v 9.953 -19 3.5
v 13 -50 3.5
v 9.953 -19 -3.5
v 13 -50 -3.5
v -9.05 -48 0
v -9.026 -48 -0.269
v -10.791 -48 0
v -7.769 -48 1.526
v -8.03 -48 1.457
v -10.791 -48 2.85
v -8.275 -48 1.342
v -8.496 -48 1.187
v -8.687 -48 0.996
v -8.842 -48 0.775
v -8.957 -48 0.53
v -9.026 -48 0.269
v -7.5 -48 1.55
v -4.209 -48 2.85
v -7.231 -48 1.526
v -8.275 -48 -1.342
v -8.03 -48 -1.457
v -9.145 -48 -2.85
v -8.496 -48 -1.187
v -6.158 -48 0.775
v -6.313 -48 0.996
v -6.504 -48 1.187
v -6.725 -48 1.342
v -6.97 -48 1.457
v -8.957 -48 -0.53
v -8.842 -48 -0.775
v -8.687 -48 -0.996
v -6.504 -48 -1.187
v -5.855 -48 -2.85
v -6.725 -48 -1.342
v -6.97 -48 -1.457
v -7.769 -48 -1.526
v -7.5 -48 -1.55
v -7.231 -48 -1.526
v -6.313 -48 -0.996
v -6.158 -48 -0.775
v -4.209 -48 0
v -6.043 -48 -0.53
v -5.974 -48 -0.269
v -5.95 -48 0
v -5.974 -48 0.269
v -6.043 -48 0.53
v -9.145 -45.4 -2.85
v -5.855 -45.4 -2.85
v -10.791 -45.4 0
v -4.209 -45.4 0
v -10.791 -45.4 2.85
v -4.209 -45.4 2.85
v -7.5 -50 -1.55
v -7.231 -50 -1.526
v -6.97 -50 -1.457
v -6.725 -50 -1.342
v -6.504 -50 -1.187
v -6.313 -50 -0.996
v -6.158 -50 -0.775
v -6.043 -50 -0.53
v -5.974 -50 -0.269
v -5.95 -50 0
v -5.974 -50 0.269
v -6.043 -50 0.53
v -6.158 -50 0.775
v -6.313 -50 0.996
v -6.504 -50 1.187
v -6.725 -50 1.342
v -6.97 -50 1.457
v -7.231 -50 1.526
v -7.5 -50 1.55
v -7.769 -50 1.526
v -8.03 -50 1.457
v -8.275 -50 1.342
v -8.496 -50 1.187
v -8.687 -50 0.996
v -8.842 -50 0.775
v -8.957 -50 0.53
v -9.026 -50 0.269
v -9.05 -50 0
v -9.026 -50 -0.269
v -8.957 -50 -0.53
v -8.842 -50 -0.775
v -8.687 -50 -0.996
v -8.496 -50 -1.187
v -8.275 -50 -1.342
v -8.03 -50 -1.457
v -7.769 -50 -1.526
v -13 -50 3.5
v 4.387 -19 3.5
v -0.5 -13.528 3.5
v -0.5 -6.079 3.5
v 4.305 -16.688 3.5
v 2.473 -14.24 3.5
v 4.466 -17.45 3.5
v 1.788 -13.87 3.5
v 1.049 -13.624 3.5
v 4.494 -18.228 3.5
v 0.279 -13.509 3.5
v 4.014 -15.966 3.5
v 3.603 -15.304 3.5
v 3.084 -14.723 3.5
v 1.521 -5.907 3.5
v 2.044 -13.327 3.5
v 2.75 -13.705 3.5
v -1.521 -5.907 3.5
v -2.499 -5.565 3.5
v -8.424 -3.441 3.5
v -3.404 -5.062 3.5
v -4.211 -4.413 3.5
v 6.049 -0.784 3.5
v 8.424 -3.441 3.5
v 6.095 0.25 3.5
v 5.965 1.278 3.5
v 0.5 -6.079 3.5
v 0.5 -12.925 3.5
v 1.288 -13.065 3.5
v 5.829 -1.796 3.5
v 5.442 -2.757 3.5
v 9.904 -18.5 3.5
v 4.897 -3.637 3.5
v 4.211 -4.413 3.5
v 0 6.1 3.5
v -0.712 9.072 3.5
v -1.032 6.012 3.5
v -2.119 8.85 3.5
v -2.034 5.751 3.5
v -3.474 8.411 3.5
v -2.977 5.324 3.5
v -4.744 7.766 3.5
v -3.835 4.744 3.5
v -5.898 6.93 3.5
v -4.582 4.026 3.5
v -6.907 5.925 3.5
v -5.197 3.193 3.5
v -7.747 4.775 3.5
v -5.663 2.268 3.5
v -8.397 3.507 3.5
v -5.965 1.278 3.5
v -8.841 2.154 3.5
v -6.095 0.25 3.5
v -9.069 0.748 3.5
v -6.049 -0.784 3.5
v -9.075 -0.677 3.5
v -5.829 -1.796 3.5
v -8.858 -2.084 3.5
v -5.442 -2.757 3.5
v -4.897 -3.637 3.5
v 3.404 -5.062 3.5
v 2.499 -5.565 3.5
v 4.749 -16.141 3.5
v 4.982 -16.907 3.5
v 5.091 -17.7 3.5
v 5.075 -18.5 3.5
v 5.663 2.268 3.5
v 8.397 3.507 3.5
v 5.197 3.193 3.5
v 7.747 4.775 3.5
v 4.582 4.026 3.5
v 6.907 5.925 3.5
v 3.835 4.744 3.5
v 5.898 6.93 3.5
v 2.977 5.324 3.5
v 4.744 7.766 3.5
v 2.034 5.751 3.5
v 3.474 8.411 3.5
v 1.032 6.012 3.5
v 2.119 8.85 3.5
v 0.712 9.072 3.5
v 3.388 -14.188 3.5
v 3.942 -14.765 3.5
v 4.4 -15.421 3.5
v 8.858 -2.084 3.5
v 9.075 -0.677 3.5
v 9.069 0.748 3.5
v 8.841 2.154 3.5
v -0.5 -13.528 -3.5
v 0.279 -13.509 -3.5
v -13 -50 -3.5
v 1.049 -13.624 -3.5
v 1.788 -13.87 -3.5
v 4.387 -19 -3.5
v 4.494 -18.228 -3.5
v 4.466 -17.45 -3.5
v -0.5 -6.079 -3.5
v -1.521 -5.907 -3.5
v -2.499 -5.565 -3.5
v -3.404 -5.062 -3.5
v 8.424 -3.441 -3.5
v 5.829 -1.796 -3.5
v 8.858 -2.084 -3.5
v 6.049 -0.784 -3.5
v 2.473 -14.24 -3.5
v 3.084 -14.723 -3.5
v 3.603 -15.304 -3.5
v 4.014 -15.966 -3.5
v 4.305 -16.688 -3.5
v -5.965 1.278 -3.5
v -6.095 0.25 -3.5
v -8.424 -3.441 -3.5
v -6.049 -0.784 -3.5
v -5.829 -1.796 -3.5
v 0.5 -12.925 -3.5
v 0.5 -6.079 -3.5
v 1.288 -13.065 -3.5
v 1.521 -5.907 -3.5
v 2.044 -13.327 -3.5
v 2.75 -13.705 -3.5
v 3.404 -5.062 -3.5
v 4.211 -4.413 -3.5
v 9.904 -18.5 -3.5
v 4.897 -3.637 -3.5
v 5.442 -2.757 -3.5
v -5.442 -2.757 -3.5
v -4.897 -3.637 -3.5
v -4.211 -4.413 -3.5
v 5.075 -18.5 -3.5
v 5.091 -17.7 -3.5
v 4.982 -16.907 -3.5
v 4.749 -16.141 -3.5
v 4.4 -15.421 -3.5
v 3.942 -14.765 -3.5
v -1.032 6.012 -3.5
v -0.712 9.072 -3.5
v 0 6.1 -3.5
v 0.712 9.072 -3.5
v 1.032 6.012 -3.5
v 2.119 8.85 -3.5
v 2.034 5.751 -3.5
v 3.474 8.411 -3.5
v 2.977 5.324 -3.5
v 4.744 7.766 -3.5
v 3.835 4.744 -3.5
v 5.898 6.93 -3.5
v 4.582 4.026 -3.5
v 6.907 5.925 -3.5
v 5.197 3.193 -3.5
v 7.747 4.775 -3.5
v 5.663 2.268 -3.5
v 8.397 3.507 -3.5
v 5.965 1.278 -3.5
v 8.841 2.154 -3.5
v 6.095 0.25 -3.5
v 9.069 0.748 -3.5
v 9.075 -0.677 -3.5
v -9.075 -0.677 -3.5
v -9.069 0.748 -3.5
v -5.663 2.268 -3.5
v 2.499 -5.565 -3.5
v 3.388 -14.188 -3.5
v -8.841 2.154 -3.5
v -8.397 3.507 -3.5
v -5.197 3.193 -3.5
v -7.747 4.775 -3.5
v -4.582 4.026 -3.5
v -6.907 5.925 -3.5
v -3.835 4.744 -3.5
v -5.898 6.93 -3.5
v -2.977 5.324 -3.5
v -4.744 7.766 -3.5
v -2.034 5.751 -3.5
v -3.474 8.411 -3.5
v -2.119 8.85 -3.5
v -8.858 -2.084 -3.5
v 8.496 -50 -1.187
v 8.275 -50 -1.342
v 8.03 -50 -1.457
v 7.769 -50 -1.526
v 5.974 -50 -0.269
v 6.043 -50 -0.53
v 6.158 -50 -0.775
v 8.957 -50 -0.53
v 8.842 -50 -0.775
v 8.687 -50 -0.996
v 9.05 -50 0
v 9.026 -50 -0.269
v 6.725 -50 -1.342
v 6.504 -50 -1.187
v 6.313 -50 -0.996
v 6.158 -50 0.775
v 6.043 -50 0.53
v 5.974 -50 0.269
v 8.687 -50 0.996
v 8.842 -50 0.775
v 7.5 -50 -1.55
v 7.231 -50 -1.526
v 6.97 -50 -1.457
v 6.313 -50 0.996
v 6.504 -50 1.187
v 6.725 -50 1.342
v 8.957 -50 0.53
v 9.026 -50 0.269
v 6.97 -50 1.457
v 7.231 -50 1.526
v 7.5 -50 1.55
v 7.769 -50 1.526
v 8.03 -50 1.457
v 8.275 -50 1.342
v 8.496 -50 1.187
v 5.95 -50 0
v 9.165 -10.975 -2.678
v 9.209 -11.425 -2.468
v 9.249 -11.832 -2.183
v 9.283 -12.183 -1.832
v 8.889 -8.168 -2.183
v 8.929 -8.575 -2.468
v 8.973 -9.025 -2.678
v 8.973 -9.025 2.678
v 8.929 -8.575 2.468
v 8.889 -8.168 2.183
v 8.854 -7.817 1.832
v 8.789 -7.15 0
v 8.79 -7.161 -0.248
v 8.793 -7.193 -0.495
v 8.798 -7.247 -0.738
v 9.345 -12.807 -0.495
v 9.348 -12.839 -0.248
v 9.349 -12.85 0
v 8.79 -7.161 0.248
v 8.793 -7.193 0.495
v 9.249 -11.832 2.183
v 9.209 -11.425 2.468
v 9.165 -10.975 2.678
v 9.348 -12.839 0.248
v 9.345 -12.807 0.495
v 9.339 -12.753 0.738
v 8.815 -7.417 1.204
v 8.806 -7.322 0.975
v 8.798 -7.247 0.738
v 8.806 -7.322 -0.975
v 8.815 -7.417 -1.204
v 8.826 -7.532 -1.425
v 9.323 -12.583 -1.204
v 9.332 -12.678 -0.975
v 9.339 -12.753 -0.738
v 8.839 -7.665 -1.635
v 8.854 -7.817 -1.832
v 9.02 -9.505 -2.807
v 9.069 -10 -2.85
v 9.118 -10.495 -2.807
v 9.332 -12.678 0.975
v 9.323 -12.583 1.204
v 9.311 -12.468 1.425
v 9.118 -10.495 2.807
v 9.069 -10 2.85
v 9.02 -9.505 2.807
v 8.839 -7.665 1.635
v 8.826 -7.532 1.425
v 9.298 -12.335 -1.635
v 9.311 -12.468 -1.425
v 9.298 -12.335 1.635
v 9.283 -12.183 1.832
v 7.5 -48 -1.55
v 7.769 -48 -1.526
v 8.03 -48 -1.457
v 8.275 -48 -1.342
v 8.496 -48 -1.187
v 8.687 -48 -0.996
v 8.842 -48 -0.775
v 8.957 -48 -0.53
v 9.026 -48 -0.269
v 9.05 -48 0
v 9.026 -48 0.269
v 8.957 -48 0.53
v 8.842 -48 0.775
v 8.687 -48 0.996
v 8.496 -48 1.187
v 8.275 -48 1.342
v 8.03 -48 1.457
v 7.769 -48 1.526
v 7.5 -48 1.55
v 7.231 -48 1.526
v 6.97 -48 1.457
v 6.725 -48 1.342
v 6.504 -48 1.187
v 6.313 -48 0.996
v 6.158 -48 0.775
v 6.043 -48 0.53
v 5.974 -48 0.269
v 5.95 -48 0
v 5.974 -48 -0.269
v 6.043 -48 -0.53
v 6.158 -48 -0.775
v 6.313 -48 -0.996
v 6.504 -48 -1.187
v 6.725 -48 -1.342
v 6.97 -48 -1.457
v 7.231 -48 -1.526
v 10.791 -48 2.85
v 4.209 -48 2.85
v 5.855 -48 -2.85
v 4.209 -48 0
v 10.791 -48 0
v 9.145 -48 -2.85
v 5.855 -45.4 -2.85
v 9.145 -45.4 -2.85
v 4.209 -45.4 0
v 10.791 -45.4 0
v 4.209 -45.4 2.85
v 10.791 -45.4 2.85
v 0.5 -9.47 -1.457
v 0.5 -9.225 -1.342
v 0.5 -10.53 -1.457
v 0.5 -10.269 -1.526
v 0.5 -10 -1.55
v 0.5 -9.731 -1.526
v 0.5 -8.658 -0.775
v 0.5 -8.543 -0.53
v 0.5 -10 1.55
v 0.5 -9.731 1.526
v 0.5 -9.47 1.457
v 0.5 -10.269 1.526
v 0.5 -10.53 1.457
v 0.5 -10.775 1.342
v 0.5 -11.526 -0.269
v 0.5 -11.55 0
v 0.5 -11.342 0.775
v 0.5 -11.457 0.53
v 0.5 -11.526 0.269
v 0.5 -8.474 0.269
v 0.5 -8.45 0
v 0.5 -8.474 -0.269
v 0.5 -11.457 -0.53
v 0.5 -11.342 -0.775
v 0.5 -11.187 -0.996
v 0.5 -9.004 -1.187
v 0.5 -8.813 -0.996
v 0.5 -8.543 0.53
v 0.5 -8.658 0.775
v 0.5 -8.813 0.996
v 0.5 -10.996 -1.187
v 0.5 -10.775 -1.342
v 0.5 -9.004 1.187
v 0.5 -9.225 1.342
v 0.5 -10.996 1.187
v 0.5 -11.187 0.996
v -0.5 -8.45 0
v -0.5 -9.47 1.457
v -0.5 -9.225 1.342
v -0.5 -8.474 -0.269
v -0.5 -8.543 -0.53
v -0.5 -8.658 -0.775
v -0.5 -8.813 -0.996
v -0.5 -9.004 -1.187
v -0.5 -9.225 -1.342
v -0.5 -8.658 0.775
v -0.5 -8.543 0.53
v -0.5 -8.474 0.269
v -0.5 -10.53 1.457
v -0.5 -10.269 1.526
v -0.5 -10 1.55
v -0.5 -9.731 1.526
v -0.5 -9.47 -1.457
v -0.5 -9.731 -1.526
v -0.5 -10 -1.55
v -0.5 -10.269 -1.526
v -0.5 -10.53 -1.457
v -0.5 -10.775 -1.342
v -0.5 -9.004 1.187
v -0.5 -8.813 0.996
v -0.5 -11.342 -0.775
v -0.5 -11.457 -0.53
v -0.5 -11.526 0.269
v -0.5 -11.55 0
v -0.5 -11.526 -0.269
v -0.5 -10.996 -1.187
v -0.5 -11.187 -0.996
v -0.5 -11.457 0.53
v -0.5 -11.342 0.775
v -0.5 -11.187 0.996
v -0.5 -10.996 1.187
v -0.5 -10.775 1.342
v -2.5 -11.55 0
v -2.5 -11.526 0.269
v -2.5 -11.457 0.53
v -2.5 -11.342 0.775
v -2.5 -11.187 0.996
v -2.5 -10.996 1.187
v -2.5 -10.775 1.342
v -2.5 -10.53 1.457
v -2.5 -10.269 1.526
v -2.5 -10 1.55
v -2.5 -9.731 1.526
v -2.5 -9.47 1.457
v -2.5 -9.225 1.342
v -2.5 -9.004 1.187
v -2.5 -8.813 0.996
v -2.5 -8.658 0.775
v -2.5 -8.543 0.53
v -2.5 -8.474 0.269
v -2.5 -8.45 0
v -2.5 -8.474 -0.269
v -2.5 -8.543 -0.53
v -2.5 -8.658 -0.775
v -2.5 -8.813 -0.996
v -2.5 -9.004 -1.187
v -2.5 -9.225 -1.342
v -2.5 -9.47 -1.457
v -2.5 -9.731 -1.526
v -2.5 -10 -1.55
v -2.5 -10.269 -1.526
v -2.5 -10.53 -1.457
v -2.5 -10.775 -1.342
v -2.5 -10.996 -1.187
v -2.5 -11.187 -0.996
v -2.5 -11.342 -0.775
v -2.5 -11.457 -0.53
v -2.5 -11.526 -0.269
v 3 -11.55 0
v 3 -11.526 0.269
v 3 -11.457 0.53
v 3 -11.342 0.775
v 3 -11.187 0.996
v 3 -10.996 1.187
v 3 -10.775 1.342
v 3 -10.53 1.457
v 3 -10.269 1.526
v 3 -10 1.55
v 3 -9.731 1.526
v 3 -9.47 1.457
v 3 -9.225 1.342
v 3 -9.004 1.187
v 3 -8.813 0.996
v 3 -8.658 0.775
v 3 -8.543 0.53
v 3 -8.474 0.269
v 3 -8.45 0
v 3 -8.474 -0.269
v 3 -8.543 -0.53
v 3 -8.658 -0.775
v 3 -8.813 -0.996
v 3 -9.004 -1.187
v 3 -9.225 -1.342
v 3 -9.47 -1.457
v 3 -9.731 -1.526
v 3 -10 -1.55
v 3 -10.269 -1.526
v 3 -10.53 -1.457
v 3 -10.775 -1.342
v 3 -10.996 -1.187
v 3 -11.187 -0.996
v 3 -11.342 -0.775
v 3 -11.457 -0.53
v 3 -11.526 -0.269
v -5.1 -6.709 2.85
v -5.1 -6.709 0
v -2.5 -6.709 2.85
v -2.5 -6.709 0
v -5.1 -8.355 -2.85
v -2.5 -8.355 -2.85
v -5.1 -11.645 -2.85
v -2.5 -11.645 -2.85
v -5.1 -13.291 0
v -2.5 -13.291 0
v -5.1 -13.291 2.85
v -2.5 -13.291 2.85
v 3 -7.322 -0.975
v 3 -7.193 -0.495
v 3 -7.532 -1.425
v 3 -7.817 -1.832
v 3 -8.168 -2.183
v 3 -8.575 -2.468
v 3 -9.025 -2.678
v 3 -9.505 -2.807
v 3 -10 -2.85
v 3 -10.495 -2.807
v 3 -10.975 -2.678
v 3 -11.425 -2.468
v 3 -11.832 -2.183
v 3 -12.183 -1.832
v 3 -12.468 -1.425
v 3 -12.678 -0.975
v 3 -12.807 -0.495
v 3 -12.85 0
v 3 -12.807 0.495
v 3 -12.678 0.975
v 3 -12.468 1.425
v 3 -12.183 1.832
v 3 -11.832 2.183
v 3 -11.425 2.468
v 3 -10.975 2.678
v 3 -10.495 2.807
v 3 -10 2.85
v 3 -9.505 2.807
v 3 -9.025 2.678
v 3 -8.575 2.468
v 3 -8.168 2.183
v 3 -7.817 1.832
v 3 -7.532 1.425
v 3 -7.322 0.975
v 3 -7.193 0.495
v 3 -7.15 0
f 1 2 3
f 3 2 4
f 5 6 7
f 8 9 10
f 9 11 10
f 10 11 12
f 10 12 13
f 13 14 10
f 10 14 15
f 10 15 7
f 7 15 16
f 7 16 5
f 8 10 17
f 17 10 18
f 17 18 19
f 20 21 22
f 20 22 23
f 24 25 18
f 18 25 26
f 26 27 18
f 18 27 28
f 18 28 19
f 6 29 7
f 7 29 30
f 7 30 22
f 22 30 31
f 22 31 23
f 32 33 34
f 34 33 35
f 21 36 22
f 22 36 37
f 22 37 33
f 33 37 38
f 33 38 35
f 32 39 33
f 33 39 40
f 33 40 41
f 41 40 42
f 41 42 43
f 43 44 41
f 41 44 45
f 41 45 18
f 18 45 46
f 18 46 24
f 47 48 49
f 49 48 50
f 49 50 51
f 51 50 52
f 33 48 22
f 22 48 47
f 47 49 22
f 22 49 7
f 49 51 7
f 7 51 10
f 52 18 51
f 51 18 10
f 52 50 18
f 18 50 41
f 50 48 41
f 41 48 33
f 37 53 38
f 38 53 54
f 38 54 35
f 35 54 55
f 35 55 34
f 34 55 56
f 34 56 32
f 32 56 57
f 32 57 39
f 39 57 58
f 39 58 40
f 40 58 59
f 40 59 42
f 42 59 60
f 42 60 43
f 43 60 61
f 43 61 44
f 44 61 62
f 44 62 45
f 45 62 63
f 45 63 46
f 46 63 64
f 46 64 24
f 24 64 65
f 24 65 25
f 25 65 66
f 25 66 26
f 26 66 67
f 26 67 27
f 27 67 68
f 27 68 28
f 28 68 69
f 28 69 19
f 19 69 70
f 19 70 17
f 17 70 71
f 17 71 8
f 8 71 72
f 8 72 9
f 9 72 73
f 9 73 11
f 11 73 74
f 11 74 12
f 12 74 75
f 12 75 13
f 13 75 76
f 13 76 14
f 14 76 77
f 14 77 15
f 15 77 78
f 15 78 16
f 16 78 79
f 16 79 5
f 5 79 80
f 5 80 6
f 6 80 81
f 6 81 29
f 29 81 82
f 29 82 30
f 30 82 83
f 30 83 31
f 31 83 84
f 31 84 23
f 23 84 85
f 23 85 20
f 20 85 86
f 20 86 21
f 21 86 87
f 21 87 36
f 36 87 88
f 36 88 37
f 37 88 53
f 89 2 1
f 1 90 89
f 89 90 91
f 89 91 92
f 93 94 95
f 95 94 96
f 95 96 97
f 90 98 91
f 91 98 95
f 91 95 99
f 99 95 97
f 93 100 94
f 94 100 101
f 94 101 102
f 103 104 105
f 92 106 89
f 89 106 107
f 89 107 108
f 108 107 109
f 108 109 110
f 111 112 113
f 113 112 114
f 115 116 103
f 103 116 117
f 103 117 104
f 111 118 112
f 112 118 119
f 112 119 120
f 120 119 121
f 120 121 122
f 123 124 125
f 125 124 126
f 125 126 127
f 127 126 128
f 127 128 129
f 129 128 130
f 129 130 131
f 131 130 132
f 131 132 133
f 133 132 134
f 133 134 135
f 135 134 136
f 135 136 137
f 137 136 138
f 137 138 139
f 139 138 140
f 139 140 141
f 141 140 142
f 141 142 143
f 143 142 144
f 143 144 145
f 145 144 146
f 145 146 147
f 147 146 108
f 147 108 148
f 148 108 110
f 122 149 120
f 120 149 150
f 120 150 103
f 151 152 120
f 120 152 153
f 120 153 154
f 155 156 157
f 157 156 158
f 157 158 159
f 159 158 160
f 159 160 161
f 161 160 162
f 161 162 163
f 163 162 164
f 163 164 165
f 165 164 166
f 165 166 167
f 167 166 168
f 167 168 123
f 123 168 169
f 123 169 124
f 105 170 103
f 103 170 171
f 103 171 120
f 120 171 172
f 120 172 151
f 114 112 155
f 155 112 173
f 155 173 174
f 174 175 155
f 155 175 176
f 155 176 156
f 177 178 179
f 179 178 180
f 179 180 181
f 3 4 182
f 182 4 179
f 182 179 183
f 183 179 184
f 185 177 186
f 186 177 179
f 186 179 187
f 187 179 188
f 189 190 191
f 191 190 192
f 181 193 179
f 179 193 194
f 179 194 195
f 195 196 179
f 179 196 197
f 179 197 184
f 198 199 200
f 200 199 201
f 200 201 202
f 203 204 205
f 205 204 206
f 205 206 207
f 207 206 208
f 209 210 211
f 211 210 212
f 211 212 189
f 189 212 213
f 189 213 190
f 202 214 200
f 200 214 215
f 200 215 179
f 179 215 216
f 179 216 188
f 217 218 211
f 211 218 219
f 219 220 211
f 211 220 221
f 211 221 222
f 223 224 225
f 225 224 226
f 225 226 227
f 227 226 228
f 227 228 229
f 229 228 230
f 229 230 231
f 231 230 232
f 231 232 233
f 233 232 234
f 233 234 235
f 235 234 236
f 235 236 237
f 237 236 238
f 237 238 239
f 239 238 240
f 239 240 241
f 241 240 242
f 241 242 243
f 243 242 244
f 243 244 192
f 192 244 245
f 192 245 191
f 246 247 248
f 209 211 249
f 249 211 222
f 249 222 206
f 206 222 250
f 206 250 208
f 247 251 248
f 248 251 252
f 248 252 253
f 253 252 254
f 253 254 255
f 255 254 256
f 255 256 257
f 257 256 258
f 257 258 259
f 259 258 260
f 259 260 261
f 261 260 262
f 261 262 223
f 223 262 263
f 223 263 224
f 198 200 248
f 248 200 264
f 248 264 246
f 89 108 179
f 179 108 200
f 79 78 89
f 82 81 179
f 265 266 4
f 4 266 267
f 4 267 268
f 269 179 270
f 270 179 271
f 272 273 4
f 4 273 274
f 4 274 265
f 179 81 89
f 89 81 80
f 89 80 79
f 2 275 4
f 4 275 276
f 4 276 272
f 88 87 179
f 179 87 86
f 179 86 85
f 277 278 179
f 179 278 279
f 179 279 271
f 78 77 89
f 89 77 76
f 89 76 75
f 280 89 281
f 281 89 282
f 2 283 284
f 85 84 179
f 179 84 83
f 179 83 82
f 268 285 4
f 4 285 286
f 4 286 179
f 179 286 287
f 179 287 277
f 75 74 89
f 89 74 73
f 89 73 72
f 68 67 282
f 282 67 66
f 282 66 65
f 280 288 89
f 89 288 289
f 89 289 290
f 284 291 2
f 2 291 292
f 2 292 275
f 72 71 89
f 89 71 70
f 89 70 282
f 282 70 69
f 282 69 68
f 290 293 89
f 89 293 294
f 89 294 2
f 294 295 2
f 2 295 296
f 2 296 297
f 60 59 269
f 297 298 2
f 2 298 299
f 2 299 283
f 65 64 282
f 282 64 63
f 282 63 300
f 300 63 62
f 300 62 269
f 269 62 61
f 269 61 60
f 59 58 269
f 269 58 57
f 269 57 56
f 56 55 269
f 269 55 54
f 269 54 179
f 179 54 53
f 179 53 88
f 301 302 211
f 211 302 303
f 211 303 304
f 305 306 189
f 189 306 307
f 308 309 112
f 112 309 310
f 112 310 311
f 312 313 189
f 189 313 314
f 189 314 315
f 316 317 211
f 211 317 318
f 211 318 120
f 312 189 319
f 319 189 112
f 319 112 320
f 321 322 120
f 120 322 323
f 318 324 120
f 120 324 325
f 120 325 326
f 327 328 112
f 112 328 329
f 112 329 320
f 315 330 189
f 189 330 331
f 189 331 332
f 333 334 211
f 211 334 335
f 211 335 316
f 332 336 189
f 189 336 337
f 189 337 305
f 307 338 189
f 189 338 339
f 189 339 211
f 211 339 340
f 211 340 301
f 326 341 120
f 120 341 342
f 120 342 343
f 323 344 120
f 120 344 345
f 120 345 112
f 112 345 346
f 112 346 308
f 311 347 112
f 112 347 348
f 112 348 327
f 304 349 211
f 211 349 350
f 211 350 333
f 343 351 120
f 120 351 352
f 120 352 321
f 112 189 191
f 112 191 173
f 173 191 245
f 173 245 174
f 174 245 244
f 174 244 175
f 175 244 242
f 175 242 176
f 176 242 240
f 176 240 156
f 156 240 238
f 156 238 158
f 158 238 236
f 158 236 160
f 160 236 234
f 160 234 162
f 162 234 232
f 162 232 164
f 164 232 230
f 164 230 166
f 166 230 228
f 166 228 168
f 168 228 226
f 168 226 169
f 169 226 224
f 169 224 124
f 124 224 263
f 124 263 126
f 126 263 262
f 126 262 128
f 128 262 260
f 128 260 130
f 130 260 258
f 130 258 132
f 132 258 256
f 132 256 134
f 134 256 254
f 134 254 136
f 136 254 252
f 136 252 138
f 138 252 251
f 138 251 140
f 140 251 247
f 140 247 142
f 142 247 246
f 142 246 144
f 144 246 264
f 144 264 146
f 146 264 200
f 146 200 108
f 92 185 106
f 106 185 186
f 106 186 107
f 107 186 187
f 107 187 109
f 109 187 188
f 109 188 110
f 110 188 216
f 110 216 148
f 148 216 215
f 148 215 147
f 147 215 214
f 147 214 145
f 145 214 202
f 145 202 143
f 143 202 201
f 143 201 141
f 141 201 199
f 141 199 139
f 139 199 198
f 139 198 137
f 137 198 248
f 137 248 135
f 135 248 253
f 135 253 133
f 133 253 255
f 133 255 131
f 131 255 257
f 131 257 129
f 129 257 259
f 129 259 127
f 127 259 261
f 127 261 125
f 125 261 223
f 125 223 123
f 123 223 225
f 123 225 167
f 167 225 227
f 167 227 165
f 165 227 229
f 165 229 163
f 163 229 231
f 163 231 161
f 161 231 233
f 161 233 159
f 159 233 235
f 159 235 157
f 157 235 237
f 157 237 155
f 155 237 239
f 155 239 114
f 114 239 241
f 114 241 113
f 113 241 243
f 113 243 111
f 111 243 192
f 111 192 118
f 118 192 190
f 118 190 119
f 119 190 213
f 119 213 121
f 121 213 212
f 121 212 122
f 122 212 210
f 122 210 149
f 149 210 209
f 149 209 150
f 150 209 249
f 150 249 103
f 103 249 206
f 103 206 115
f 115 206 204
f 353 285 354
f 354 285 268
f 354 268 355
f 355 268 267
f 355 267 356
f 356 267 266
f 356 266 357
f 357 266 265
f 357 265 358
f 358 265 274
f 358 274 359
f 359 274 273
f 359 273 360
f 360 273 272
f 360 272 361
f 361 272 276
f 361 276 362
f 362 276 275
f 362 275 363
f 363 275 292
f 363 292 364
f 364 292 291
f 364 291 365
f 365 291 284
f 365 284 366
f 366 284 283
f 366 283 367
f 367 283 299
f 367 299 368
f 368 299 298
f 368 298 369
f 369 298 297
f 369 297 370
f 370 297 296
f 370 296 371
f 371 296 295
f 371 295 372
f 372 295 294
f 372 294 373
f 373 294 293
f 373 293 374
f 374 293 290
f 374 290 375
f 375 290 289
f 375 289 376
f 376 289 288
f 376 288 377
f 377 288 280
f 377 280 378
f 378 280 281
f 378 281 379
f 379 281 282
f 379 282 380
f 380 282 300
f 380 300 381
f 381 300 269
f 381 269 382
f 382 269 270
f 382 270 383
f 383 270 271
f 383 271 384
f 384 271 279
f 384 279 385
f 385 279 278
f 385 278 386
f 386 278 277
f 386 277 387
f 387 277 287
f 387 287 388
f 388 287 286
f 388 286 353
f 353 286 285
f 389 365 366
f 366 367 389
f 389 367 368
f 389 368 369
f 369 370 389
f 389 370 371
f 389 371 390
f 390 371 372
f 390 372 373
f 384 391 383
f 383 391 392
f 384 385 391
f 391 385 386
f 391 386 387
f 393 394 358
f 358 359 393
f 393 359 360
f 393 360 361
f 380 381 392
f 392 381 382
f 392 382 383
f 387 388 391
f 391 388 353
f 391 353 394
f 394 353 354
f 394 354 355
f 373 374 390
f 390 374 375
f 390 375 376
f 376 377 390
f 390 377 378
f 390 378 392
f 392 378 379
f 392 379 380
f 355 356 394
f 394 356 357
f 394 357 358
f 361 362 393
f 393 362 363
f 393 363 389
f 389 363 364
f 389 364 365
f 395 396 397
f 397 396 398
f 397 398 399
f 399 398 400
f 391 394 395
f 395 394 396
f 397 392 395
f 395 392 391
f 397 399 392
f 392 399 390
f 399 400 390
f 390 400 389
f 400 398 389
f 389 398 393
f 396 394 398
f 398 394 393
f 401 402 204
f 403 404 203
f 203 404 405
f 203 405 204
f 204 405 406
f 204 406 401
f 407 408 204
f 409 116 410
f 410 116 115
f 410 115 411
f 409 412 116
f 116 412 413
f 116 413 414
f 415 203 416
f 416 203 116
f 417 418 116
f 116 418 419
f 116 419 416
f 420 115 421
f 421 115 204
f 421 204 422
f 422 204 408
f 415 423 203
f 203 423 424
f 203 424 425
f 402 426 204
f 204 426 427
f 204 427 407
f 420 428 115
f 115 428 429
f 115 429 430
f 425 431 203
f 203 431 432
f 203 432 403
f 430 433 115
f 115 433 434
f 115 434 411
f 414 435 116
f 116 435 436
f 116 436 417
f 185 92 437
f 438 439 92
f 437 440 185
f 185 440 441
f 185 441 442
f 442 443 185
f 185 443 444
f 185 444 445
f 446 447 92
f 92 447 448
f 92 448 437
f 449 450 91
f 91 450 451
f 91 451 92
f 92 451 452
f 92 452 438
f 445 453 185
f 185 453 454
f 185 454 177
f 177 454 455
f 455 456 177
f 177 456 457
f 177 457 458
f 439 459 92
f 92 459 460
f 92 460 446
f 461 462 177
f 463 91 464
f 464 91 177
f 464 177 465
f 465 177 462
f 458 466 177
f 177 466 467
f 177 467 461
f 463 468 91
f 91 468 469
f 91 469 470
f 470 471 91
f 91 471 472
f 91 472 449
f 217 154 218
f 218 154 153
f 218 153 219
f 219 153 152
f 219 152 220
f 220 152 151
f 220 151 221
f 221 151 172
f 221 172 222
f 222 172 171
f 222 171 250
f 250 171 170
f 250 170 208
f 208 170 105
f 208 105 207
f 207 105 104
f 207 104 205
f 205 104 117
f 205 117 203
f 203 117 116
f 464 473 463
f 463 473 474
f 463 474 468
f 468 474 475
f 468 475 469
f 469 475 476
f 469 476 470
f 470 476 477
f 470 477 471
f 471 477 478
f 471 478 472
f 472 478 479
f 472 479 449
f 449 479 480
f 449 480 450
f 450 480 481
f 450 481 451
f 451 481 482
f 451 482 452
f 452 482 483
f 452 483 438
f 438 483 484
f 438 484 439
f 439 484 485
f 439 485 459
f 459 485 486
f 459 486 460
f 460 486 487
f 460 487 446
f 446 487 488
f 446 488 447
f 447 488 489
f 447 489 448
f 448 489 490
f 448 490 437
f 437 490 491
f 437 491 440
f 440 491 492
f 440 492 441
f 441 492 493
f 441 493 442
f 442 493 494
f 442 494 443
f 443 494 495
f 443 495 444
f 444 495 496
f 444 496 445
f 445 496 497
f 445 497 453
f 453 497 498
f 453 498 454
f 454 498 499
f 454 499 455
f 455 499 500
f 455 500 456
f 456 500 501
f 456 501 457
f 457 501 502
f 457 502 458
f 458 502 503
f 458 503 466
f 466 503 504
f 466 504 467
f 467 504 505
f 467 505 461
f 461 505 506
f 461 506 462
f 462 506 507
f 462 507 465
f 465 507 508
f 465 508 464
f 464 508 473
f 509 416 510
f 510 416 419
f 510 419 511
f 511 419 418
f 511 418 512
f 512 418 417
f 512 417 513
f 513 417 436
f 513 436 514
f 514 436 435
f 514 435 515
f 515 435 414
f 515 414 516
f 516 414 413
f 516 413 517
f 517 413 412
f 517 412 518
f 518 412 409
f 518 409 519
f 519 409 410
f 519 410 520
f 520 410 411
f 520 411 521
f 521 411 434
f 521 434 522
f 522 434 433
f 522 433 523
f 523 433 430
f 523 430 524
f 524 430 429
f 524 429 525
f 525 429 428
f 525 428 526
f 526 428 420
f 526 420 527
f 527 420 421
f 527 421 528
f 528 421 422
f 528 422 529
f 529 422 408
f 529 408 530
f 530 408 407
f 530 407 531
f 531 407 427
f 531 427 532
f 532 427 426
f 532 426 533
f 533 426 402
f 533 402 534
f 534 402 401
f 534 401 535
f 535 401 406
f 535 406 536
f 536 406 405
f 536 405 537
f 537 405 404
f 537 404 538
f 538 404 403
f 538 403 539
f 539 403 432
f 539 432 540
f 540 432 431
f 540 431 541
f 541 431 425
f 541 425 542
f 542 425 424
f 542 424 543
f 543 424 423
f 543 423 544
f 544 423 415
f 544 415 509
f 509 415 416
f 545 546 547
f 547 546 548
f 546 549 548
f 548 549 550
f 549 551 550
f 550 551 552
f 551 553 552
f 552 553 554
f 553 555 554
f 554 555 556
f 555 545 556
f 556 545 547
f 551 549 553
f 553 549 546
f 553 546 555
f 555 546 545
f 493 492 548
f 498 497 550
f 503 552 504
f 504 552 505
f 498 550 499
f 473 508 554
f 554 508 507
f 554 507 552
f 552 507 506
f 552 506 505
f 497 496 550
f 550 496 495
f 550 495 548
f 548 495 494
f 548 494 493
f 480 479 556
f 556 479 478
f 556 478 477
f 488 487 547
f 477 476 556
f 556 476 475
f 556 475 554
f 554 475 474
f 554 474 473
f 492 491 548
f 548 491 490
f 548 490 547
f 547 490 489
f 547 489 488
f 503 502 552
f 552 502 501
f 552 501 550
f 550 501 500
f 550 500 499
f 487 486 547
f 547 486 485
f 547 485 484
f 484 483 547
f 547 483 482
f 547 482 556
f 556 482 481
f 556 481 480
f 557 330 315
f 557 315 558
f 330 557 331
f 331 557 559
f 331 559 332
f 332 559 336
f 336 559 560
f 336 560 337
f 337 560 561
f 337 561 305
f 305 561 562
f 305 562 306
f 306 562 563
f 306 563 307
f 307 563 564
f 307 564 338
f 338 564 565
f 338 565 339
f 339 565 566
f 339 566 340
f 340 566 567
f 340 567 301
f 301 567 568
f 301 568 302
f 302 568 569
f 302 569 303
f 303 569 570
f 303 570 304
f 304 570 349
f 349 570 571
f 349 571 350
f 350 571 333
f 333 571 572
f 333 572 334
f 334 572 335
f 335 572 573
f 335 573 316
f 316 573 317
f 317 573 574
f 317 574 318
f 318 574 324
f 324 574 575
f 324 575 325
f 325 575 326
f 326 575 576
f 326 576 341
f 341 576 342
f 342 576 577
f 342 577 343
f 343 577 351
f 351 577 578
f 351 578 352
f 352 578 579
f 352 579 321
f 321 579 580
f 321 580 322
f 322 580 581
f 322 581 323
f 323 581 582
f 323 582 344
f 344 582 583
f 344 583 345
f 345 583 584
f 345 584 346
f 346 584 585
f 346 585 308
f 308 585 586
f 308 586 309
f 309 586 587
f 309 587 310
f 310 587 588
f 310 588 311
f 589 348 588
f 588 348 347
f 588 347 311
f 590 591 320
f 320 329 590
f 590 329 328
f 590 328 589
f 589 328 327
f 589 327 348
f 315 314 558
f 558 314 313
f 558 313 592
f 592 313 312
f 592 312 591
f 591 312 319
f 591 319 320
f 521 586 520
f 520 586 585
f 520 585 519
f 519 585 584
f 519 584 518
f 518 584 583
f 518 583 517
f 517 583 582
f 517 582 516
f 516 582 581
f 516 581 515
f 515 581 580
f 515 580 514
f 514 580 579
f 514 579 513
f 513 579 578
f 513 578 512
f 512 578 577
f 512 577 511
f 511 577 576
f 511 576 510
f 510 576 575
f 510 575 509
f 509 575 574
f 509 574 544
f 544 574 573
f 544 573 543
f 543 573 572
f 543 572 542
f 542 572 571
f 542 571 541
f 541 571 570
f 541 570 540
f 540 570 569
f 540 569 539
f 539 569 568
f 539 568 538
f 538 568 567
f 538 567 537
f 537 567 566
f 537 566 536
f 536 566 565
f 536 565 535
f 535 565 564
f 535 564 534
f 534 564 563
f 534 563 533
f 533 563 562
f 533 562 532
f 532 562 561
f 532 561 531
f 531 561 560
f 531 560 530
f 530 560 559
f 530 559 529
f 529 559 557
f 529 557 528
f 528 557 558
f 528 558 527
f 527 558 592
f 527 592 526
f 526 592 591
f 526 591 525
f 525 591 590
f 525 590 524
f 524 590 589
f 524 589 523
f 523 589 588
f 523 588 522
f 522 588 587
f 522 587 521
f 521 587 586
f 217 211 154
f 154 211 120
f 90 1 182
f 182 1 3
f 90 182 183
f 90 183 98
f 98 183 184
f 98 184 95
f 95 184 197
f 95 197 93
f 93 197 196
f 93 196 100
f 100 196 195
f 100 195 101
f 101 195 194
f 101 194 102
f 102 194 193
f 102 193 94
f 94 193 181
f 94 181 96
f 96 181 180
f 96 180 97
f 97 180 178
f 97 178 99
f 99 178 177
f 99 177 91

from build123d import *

# Parameters (mm, degrees)
SKETCH1_R                      = 6.1
THICKNESS_DEPTH                = 3.5
BOTNUTCUT_START                = -2
SKETCH2_R                      = 2.85
BOTNUTCUT_DEPTH                = 2.6
SKETCH3_R                      = 1.55
BOTSCREWCUT_DEPTH              = 2
CUT_EXTRUDE1_START             = -7
CUT_EXTRUDE1_DEPTH             = 7
RAILNUTCUT_START               = -2
RAILNUTCUT_DEPTH               = 2.6
SKETCH7_R                      = 1.55
RAILSCREWCUT_DEPTH             = 2.6
RAILSCREWCUT_DIRECTION_2_REACH = 53.909
RAILNUTHEADCUT_REACH           = 56.409
RAILNUTHEADCUT_START           = -2.5
SKETCH8_R                      = 2.85
SKETCH9_W                      = 7
SKETCH9_H                      = 0.5
MOVEMENTCUT_DEPTH              = 7
SKETCH10_R                     = 4.5
BOSS_EXTRUDE1_DEPTH            = 3.5


with BuildPart() as part:
    # Sketch1 → Thickness (new, symmetric)
    with BuildSketch(Plane.XY):
        with BuildLine():
            Line((-13, -50), (13, -50))
            Line((13, -50), (8.424323952, -3.441041405))
            ThreePointArc((8.424323952, -3.441041405), (0, 9.1), (-8.424323952, -3.441041405))
            Line((-8.424323952, -3.441041405), (-13, -50))
        make_face()
        Circle(SKETCH1_R, mode=Mode.SUBTRACT)
    extrude(amount=THICKNESS_DEPTH, both=True)

    # Sketch2 → BotNutCut (cut)
    with BuildSketch(Plane.XZ.offset(50).offset(BOTNUTCUT_START)):
        with Locations((-7.5, 0)):
            Circle(SKETCH2_R)
        with BuildLine():
            Line((-10.790896534, 2.85), (-10.790896534, 0))
            Line((-10.790896534, 0), (-9.968172361, -1.42500007))
            ThreePointArc((-9.968172361, -1.42500007), (-9.96817242, 1.424999968), (-7.499999995, 2.85))
            Line((-7.499999995, 2.85), (-10.790896534, 2.85))
        make_face()
        with BuildLine():
            Line((-4.209103466, 2.85), (-7.499999995, 2.85))
            ThreePointArc((-7.499999995, 2.85), (-5.484745672, 2.015254324), (-4.65, 0))
            ThreePointArc((-4.65, 0), (-4.747111384, -0.737634237), (-5.031827556, -1.424999925))
            Line((-5.031827556, -1.424999925), (-4.209103466, 0))
            Line((-4.209103466, 0), (-4.209103466, 2.85))
        make_face()
        with BuildLine():
            ThreePointArc((-5.031827556, -1.424999925), (-6.074999963, -2.468172379), (-7.5, -2.85))
            Line((-7.5, -2.85), (-5.854551733, -2.85))
            Line((-5.854551733, -2.85), (-5.031827556, -1.424999925))
        make_face()
        with BuildLine():
            ThreePointArc((-7.5, -2.85), (-8.924999965, -2.468172421), (-9.968172361, -1.42500007))
            Line((-9.968172361, -1.42500007), (-9.145448267, -2.85))
            Line((-9.145448267, -2.85), (-7.5, -2.85))
        make_face()
        with BuildLine():
            ThreePointArc((7.5, -2.85), (6.074999995, -2.468172398), (5.031827593, -1.42499999))
            Line((5.031827593, -1.42499999), (5.854551733, -2.85))
            Line((5.854551733, -2.85), (7.5, -2.85))
        make_face()
        with BuildLine():
            ThreePointArc((9.968172375, -1.425000045), (8.924999978, -2.468172414), (7.5, -2.85))
            Line((7.5, -2.85), (9.145448267, -2.85))
            Line((9.145448267, -2.85), (9.968172375, -1.425000045))
        make_face()
        with BuildLine():
            Line((10.790896534, 2.85), (7.5, 2.85))
            ThreePointArc((7.5, 2.85), (9.515254326, 2.015254326), (10.35, 0))
            ThreePointArc((10.35, 0), (10.252888598, -0.737634304), (9.968172375, -1.425000045))
            Line((9.968172375, -1.425000045), (10.790896534, 0))
            Line((10.790896534, 0), (10.790896534, 2.85))
        make_face()
        with BuildLine():
            Line((4.209103466, 2.85), (4.209103466, 0))
            Line((4.209103466, 0), (5.031827593, -1.42499999))
            ThreePointArc((5.031827593, -1.42499999), (5.031827602, 1.425000005), (7.5, 2.85))
            Line((7.5, 2.85), (4.209103466, 2.85))
        make_face()
        with Locations((7.5, 0)):
            Circle(SKETCH2_R)
    extrude(amount=-BOTNUTCUT_DEPTH, mode=Mode.SUBTRACT)

    # Sketch3 → BotScrewCut (cut)
    with BuildSketch(Plane.XZ.offset(50)):
        with Locations(Location((-7.5, 0, 0), (0, 0, 270))):
            Circle(SKETCH3_R)
        with Locations(Location((7.5, 0, 0), (0, 0, 270))):
            Circle(SKETCH3_R)
    extrude(amount=-BOTSCREWCUT_DEPTH, mode=Mode.SUBTRACT)

    # Sketch5 → Cut-Extrude1 (cut)
    with BuildSketch(Plane.XY.offset(3.5).offset(CUT_EXTRUDE1_START)):
        with BuildLine():
            ThreePointArc((0.5, -6.079473661), (0, -6.1), (-0.5, -6.079473661))
            Line((-0.5, -6.079473661), (-0.5, -12.924568984))
            ThreePointArc((-0.5, -12.924568984), (0, -23.1), (0.5, -12.924568984))
            Line((0.5, -12.924568984), (0.5, -6.079473661))
        make_face()
    extrude(amount=CUT_EXTRUDE1_DEPTH, mode=Mode.SUBTRACT)

    # Sketch6 → RailNutCut (cut)
    with BuildSketch(Plane(origin=(-0.5, 0, 0), x_dir=(0, 0, -1), z_dir=(1, 0, 0)).offset(RAILNUTCUT_START)):
        Polygon((0, -13.290896534), (2.85, -11.645448267), (2.85, -8.354551733), (0, -6.709103466), (-2.85, -6.709103466), (-2.85, -13.290896534), align=None)
    extrude(amount=-RAILNUTCUT_DEPTH, mode=Mode.SUBTRACT)

    # Sketch7 → RailScrewCut (cut)
    with BuildSketch(Plane(origin=(-0.5, 0, 0), x_dir=(0, 0, -1), z_dir=(1, 0, 0))):
        with Locations(Location((0, -10, 0), (0, 0, 270))):
            Circle(SKETCH7_R)
    extrude(amount=-RAILSCREWCUT_DEPTH, mode=Mode.SUBTRACT)

    # RailScrewCut direction 2: up to this plane
    railscrewcut_direction_2_end = Plane(origin=(13, -50, 3.5), z_dir=(-0.9952055153223801, -0.09780583966162733, 0))
    # Sketch7 → RailScrewCut direction 2 (cut, up to the surface)
    with BuildSketch(Plane(origin=(-0.5, 0, 0), x_dir=(0, 0, -1), z_dir=(1, 0, 0)), mode=Mode.PRIVATE) as railscrewcut_direction_2_sk1:
        with Locations(Location((0, -10, 0), (0, 0, 270))):
            Circle(SKETCH7_R)
    railscrewcut_direction_2_tool1 = split(extrude(railscrewcut_direction_2_sk1.sketch, amount=RAILSCREWCUT_DIRECTION_2_REACH, mode=Mode.PRIVATE), bisect_by=railscrewcut_direction_2_end, keep=Keep.BOTH, mode=Mode.PRIVATE)
    add(railscrewcut_direction_2_tool1.solids().sort_by_distance((-0.5, -10, 0))[0], mode=Mode.SUBTRACT)

    # RailNutHeadCut: up to this plane
    railnutheadcut_end = Plane(origin=(13, -50, 3.5), z_dir=(-0.9952055153223801, -0.09780583966162733, 0))
    # Sketch8 → RailNutHeadCut (cut, up to the surface)
    with BuildSketch(Plane.ZY.offset(-0.5).offset(RAILNUTHEADCUT_START), mode=Mode.PRIVATE) as railnutheadcut_sk1:
        with Locations(Location((0, -10, 0), (0, 0, 270))):
            Circle(SKETCH8_R)
    railnutheadcut_tool1 = split(extrude(railnutheadcut_sk1.sketch, amount=-RAILNUTHEADCUT_REACH, mode=Mode.PRIVATE), bisect_by=railnutheadcut_end, keep=Keep.BOTH, mode=Mode.PRIVATE)
    add(railnutheadcut_tool1.solids().sort_by_distance((3, -10, 0))[0], mode=Mode.SUBTRACT)

    # Sketch9 → MovementCut (cut)
    with BuildSketch(Plane.XY.offset(3.5)):
        with Locations((7.5, -18.75)):
            Rectangle(SKETCH9_W, SKETCH9_H)
    extrude(amount=-MOVEMENTCUT_DEPTH, mode=Mode.SUBTRACT)

    # Sketch10 → Boss-Extrude1 (add, symmetric)
    with BuildSketch(Plane.XY):
        with BuildLine():
            Line((-0.5, -13.527864045), (-0.5, -12.924568984))
            ThreePointArc((-0.5, -12.924568984), (-3.780537731, -21.42308844), (5.0009999, -19))
            Line((5.0009999, -19), (4.387482194, -19))
            ThreePointArc((4.387482194, -19), (-3.356217727, -20.997632828), (-0.5, -13.527864045))
        make_face()
        with Locations((0, -18)):
            Circle(SKETCH10_R)
    extrude(amount=BOSS_EXTRUDE1_DEPTH, both=True)


solid = part.part
